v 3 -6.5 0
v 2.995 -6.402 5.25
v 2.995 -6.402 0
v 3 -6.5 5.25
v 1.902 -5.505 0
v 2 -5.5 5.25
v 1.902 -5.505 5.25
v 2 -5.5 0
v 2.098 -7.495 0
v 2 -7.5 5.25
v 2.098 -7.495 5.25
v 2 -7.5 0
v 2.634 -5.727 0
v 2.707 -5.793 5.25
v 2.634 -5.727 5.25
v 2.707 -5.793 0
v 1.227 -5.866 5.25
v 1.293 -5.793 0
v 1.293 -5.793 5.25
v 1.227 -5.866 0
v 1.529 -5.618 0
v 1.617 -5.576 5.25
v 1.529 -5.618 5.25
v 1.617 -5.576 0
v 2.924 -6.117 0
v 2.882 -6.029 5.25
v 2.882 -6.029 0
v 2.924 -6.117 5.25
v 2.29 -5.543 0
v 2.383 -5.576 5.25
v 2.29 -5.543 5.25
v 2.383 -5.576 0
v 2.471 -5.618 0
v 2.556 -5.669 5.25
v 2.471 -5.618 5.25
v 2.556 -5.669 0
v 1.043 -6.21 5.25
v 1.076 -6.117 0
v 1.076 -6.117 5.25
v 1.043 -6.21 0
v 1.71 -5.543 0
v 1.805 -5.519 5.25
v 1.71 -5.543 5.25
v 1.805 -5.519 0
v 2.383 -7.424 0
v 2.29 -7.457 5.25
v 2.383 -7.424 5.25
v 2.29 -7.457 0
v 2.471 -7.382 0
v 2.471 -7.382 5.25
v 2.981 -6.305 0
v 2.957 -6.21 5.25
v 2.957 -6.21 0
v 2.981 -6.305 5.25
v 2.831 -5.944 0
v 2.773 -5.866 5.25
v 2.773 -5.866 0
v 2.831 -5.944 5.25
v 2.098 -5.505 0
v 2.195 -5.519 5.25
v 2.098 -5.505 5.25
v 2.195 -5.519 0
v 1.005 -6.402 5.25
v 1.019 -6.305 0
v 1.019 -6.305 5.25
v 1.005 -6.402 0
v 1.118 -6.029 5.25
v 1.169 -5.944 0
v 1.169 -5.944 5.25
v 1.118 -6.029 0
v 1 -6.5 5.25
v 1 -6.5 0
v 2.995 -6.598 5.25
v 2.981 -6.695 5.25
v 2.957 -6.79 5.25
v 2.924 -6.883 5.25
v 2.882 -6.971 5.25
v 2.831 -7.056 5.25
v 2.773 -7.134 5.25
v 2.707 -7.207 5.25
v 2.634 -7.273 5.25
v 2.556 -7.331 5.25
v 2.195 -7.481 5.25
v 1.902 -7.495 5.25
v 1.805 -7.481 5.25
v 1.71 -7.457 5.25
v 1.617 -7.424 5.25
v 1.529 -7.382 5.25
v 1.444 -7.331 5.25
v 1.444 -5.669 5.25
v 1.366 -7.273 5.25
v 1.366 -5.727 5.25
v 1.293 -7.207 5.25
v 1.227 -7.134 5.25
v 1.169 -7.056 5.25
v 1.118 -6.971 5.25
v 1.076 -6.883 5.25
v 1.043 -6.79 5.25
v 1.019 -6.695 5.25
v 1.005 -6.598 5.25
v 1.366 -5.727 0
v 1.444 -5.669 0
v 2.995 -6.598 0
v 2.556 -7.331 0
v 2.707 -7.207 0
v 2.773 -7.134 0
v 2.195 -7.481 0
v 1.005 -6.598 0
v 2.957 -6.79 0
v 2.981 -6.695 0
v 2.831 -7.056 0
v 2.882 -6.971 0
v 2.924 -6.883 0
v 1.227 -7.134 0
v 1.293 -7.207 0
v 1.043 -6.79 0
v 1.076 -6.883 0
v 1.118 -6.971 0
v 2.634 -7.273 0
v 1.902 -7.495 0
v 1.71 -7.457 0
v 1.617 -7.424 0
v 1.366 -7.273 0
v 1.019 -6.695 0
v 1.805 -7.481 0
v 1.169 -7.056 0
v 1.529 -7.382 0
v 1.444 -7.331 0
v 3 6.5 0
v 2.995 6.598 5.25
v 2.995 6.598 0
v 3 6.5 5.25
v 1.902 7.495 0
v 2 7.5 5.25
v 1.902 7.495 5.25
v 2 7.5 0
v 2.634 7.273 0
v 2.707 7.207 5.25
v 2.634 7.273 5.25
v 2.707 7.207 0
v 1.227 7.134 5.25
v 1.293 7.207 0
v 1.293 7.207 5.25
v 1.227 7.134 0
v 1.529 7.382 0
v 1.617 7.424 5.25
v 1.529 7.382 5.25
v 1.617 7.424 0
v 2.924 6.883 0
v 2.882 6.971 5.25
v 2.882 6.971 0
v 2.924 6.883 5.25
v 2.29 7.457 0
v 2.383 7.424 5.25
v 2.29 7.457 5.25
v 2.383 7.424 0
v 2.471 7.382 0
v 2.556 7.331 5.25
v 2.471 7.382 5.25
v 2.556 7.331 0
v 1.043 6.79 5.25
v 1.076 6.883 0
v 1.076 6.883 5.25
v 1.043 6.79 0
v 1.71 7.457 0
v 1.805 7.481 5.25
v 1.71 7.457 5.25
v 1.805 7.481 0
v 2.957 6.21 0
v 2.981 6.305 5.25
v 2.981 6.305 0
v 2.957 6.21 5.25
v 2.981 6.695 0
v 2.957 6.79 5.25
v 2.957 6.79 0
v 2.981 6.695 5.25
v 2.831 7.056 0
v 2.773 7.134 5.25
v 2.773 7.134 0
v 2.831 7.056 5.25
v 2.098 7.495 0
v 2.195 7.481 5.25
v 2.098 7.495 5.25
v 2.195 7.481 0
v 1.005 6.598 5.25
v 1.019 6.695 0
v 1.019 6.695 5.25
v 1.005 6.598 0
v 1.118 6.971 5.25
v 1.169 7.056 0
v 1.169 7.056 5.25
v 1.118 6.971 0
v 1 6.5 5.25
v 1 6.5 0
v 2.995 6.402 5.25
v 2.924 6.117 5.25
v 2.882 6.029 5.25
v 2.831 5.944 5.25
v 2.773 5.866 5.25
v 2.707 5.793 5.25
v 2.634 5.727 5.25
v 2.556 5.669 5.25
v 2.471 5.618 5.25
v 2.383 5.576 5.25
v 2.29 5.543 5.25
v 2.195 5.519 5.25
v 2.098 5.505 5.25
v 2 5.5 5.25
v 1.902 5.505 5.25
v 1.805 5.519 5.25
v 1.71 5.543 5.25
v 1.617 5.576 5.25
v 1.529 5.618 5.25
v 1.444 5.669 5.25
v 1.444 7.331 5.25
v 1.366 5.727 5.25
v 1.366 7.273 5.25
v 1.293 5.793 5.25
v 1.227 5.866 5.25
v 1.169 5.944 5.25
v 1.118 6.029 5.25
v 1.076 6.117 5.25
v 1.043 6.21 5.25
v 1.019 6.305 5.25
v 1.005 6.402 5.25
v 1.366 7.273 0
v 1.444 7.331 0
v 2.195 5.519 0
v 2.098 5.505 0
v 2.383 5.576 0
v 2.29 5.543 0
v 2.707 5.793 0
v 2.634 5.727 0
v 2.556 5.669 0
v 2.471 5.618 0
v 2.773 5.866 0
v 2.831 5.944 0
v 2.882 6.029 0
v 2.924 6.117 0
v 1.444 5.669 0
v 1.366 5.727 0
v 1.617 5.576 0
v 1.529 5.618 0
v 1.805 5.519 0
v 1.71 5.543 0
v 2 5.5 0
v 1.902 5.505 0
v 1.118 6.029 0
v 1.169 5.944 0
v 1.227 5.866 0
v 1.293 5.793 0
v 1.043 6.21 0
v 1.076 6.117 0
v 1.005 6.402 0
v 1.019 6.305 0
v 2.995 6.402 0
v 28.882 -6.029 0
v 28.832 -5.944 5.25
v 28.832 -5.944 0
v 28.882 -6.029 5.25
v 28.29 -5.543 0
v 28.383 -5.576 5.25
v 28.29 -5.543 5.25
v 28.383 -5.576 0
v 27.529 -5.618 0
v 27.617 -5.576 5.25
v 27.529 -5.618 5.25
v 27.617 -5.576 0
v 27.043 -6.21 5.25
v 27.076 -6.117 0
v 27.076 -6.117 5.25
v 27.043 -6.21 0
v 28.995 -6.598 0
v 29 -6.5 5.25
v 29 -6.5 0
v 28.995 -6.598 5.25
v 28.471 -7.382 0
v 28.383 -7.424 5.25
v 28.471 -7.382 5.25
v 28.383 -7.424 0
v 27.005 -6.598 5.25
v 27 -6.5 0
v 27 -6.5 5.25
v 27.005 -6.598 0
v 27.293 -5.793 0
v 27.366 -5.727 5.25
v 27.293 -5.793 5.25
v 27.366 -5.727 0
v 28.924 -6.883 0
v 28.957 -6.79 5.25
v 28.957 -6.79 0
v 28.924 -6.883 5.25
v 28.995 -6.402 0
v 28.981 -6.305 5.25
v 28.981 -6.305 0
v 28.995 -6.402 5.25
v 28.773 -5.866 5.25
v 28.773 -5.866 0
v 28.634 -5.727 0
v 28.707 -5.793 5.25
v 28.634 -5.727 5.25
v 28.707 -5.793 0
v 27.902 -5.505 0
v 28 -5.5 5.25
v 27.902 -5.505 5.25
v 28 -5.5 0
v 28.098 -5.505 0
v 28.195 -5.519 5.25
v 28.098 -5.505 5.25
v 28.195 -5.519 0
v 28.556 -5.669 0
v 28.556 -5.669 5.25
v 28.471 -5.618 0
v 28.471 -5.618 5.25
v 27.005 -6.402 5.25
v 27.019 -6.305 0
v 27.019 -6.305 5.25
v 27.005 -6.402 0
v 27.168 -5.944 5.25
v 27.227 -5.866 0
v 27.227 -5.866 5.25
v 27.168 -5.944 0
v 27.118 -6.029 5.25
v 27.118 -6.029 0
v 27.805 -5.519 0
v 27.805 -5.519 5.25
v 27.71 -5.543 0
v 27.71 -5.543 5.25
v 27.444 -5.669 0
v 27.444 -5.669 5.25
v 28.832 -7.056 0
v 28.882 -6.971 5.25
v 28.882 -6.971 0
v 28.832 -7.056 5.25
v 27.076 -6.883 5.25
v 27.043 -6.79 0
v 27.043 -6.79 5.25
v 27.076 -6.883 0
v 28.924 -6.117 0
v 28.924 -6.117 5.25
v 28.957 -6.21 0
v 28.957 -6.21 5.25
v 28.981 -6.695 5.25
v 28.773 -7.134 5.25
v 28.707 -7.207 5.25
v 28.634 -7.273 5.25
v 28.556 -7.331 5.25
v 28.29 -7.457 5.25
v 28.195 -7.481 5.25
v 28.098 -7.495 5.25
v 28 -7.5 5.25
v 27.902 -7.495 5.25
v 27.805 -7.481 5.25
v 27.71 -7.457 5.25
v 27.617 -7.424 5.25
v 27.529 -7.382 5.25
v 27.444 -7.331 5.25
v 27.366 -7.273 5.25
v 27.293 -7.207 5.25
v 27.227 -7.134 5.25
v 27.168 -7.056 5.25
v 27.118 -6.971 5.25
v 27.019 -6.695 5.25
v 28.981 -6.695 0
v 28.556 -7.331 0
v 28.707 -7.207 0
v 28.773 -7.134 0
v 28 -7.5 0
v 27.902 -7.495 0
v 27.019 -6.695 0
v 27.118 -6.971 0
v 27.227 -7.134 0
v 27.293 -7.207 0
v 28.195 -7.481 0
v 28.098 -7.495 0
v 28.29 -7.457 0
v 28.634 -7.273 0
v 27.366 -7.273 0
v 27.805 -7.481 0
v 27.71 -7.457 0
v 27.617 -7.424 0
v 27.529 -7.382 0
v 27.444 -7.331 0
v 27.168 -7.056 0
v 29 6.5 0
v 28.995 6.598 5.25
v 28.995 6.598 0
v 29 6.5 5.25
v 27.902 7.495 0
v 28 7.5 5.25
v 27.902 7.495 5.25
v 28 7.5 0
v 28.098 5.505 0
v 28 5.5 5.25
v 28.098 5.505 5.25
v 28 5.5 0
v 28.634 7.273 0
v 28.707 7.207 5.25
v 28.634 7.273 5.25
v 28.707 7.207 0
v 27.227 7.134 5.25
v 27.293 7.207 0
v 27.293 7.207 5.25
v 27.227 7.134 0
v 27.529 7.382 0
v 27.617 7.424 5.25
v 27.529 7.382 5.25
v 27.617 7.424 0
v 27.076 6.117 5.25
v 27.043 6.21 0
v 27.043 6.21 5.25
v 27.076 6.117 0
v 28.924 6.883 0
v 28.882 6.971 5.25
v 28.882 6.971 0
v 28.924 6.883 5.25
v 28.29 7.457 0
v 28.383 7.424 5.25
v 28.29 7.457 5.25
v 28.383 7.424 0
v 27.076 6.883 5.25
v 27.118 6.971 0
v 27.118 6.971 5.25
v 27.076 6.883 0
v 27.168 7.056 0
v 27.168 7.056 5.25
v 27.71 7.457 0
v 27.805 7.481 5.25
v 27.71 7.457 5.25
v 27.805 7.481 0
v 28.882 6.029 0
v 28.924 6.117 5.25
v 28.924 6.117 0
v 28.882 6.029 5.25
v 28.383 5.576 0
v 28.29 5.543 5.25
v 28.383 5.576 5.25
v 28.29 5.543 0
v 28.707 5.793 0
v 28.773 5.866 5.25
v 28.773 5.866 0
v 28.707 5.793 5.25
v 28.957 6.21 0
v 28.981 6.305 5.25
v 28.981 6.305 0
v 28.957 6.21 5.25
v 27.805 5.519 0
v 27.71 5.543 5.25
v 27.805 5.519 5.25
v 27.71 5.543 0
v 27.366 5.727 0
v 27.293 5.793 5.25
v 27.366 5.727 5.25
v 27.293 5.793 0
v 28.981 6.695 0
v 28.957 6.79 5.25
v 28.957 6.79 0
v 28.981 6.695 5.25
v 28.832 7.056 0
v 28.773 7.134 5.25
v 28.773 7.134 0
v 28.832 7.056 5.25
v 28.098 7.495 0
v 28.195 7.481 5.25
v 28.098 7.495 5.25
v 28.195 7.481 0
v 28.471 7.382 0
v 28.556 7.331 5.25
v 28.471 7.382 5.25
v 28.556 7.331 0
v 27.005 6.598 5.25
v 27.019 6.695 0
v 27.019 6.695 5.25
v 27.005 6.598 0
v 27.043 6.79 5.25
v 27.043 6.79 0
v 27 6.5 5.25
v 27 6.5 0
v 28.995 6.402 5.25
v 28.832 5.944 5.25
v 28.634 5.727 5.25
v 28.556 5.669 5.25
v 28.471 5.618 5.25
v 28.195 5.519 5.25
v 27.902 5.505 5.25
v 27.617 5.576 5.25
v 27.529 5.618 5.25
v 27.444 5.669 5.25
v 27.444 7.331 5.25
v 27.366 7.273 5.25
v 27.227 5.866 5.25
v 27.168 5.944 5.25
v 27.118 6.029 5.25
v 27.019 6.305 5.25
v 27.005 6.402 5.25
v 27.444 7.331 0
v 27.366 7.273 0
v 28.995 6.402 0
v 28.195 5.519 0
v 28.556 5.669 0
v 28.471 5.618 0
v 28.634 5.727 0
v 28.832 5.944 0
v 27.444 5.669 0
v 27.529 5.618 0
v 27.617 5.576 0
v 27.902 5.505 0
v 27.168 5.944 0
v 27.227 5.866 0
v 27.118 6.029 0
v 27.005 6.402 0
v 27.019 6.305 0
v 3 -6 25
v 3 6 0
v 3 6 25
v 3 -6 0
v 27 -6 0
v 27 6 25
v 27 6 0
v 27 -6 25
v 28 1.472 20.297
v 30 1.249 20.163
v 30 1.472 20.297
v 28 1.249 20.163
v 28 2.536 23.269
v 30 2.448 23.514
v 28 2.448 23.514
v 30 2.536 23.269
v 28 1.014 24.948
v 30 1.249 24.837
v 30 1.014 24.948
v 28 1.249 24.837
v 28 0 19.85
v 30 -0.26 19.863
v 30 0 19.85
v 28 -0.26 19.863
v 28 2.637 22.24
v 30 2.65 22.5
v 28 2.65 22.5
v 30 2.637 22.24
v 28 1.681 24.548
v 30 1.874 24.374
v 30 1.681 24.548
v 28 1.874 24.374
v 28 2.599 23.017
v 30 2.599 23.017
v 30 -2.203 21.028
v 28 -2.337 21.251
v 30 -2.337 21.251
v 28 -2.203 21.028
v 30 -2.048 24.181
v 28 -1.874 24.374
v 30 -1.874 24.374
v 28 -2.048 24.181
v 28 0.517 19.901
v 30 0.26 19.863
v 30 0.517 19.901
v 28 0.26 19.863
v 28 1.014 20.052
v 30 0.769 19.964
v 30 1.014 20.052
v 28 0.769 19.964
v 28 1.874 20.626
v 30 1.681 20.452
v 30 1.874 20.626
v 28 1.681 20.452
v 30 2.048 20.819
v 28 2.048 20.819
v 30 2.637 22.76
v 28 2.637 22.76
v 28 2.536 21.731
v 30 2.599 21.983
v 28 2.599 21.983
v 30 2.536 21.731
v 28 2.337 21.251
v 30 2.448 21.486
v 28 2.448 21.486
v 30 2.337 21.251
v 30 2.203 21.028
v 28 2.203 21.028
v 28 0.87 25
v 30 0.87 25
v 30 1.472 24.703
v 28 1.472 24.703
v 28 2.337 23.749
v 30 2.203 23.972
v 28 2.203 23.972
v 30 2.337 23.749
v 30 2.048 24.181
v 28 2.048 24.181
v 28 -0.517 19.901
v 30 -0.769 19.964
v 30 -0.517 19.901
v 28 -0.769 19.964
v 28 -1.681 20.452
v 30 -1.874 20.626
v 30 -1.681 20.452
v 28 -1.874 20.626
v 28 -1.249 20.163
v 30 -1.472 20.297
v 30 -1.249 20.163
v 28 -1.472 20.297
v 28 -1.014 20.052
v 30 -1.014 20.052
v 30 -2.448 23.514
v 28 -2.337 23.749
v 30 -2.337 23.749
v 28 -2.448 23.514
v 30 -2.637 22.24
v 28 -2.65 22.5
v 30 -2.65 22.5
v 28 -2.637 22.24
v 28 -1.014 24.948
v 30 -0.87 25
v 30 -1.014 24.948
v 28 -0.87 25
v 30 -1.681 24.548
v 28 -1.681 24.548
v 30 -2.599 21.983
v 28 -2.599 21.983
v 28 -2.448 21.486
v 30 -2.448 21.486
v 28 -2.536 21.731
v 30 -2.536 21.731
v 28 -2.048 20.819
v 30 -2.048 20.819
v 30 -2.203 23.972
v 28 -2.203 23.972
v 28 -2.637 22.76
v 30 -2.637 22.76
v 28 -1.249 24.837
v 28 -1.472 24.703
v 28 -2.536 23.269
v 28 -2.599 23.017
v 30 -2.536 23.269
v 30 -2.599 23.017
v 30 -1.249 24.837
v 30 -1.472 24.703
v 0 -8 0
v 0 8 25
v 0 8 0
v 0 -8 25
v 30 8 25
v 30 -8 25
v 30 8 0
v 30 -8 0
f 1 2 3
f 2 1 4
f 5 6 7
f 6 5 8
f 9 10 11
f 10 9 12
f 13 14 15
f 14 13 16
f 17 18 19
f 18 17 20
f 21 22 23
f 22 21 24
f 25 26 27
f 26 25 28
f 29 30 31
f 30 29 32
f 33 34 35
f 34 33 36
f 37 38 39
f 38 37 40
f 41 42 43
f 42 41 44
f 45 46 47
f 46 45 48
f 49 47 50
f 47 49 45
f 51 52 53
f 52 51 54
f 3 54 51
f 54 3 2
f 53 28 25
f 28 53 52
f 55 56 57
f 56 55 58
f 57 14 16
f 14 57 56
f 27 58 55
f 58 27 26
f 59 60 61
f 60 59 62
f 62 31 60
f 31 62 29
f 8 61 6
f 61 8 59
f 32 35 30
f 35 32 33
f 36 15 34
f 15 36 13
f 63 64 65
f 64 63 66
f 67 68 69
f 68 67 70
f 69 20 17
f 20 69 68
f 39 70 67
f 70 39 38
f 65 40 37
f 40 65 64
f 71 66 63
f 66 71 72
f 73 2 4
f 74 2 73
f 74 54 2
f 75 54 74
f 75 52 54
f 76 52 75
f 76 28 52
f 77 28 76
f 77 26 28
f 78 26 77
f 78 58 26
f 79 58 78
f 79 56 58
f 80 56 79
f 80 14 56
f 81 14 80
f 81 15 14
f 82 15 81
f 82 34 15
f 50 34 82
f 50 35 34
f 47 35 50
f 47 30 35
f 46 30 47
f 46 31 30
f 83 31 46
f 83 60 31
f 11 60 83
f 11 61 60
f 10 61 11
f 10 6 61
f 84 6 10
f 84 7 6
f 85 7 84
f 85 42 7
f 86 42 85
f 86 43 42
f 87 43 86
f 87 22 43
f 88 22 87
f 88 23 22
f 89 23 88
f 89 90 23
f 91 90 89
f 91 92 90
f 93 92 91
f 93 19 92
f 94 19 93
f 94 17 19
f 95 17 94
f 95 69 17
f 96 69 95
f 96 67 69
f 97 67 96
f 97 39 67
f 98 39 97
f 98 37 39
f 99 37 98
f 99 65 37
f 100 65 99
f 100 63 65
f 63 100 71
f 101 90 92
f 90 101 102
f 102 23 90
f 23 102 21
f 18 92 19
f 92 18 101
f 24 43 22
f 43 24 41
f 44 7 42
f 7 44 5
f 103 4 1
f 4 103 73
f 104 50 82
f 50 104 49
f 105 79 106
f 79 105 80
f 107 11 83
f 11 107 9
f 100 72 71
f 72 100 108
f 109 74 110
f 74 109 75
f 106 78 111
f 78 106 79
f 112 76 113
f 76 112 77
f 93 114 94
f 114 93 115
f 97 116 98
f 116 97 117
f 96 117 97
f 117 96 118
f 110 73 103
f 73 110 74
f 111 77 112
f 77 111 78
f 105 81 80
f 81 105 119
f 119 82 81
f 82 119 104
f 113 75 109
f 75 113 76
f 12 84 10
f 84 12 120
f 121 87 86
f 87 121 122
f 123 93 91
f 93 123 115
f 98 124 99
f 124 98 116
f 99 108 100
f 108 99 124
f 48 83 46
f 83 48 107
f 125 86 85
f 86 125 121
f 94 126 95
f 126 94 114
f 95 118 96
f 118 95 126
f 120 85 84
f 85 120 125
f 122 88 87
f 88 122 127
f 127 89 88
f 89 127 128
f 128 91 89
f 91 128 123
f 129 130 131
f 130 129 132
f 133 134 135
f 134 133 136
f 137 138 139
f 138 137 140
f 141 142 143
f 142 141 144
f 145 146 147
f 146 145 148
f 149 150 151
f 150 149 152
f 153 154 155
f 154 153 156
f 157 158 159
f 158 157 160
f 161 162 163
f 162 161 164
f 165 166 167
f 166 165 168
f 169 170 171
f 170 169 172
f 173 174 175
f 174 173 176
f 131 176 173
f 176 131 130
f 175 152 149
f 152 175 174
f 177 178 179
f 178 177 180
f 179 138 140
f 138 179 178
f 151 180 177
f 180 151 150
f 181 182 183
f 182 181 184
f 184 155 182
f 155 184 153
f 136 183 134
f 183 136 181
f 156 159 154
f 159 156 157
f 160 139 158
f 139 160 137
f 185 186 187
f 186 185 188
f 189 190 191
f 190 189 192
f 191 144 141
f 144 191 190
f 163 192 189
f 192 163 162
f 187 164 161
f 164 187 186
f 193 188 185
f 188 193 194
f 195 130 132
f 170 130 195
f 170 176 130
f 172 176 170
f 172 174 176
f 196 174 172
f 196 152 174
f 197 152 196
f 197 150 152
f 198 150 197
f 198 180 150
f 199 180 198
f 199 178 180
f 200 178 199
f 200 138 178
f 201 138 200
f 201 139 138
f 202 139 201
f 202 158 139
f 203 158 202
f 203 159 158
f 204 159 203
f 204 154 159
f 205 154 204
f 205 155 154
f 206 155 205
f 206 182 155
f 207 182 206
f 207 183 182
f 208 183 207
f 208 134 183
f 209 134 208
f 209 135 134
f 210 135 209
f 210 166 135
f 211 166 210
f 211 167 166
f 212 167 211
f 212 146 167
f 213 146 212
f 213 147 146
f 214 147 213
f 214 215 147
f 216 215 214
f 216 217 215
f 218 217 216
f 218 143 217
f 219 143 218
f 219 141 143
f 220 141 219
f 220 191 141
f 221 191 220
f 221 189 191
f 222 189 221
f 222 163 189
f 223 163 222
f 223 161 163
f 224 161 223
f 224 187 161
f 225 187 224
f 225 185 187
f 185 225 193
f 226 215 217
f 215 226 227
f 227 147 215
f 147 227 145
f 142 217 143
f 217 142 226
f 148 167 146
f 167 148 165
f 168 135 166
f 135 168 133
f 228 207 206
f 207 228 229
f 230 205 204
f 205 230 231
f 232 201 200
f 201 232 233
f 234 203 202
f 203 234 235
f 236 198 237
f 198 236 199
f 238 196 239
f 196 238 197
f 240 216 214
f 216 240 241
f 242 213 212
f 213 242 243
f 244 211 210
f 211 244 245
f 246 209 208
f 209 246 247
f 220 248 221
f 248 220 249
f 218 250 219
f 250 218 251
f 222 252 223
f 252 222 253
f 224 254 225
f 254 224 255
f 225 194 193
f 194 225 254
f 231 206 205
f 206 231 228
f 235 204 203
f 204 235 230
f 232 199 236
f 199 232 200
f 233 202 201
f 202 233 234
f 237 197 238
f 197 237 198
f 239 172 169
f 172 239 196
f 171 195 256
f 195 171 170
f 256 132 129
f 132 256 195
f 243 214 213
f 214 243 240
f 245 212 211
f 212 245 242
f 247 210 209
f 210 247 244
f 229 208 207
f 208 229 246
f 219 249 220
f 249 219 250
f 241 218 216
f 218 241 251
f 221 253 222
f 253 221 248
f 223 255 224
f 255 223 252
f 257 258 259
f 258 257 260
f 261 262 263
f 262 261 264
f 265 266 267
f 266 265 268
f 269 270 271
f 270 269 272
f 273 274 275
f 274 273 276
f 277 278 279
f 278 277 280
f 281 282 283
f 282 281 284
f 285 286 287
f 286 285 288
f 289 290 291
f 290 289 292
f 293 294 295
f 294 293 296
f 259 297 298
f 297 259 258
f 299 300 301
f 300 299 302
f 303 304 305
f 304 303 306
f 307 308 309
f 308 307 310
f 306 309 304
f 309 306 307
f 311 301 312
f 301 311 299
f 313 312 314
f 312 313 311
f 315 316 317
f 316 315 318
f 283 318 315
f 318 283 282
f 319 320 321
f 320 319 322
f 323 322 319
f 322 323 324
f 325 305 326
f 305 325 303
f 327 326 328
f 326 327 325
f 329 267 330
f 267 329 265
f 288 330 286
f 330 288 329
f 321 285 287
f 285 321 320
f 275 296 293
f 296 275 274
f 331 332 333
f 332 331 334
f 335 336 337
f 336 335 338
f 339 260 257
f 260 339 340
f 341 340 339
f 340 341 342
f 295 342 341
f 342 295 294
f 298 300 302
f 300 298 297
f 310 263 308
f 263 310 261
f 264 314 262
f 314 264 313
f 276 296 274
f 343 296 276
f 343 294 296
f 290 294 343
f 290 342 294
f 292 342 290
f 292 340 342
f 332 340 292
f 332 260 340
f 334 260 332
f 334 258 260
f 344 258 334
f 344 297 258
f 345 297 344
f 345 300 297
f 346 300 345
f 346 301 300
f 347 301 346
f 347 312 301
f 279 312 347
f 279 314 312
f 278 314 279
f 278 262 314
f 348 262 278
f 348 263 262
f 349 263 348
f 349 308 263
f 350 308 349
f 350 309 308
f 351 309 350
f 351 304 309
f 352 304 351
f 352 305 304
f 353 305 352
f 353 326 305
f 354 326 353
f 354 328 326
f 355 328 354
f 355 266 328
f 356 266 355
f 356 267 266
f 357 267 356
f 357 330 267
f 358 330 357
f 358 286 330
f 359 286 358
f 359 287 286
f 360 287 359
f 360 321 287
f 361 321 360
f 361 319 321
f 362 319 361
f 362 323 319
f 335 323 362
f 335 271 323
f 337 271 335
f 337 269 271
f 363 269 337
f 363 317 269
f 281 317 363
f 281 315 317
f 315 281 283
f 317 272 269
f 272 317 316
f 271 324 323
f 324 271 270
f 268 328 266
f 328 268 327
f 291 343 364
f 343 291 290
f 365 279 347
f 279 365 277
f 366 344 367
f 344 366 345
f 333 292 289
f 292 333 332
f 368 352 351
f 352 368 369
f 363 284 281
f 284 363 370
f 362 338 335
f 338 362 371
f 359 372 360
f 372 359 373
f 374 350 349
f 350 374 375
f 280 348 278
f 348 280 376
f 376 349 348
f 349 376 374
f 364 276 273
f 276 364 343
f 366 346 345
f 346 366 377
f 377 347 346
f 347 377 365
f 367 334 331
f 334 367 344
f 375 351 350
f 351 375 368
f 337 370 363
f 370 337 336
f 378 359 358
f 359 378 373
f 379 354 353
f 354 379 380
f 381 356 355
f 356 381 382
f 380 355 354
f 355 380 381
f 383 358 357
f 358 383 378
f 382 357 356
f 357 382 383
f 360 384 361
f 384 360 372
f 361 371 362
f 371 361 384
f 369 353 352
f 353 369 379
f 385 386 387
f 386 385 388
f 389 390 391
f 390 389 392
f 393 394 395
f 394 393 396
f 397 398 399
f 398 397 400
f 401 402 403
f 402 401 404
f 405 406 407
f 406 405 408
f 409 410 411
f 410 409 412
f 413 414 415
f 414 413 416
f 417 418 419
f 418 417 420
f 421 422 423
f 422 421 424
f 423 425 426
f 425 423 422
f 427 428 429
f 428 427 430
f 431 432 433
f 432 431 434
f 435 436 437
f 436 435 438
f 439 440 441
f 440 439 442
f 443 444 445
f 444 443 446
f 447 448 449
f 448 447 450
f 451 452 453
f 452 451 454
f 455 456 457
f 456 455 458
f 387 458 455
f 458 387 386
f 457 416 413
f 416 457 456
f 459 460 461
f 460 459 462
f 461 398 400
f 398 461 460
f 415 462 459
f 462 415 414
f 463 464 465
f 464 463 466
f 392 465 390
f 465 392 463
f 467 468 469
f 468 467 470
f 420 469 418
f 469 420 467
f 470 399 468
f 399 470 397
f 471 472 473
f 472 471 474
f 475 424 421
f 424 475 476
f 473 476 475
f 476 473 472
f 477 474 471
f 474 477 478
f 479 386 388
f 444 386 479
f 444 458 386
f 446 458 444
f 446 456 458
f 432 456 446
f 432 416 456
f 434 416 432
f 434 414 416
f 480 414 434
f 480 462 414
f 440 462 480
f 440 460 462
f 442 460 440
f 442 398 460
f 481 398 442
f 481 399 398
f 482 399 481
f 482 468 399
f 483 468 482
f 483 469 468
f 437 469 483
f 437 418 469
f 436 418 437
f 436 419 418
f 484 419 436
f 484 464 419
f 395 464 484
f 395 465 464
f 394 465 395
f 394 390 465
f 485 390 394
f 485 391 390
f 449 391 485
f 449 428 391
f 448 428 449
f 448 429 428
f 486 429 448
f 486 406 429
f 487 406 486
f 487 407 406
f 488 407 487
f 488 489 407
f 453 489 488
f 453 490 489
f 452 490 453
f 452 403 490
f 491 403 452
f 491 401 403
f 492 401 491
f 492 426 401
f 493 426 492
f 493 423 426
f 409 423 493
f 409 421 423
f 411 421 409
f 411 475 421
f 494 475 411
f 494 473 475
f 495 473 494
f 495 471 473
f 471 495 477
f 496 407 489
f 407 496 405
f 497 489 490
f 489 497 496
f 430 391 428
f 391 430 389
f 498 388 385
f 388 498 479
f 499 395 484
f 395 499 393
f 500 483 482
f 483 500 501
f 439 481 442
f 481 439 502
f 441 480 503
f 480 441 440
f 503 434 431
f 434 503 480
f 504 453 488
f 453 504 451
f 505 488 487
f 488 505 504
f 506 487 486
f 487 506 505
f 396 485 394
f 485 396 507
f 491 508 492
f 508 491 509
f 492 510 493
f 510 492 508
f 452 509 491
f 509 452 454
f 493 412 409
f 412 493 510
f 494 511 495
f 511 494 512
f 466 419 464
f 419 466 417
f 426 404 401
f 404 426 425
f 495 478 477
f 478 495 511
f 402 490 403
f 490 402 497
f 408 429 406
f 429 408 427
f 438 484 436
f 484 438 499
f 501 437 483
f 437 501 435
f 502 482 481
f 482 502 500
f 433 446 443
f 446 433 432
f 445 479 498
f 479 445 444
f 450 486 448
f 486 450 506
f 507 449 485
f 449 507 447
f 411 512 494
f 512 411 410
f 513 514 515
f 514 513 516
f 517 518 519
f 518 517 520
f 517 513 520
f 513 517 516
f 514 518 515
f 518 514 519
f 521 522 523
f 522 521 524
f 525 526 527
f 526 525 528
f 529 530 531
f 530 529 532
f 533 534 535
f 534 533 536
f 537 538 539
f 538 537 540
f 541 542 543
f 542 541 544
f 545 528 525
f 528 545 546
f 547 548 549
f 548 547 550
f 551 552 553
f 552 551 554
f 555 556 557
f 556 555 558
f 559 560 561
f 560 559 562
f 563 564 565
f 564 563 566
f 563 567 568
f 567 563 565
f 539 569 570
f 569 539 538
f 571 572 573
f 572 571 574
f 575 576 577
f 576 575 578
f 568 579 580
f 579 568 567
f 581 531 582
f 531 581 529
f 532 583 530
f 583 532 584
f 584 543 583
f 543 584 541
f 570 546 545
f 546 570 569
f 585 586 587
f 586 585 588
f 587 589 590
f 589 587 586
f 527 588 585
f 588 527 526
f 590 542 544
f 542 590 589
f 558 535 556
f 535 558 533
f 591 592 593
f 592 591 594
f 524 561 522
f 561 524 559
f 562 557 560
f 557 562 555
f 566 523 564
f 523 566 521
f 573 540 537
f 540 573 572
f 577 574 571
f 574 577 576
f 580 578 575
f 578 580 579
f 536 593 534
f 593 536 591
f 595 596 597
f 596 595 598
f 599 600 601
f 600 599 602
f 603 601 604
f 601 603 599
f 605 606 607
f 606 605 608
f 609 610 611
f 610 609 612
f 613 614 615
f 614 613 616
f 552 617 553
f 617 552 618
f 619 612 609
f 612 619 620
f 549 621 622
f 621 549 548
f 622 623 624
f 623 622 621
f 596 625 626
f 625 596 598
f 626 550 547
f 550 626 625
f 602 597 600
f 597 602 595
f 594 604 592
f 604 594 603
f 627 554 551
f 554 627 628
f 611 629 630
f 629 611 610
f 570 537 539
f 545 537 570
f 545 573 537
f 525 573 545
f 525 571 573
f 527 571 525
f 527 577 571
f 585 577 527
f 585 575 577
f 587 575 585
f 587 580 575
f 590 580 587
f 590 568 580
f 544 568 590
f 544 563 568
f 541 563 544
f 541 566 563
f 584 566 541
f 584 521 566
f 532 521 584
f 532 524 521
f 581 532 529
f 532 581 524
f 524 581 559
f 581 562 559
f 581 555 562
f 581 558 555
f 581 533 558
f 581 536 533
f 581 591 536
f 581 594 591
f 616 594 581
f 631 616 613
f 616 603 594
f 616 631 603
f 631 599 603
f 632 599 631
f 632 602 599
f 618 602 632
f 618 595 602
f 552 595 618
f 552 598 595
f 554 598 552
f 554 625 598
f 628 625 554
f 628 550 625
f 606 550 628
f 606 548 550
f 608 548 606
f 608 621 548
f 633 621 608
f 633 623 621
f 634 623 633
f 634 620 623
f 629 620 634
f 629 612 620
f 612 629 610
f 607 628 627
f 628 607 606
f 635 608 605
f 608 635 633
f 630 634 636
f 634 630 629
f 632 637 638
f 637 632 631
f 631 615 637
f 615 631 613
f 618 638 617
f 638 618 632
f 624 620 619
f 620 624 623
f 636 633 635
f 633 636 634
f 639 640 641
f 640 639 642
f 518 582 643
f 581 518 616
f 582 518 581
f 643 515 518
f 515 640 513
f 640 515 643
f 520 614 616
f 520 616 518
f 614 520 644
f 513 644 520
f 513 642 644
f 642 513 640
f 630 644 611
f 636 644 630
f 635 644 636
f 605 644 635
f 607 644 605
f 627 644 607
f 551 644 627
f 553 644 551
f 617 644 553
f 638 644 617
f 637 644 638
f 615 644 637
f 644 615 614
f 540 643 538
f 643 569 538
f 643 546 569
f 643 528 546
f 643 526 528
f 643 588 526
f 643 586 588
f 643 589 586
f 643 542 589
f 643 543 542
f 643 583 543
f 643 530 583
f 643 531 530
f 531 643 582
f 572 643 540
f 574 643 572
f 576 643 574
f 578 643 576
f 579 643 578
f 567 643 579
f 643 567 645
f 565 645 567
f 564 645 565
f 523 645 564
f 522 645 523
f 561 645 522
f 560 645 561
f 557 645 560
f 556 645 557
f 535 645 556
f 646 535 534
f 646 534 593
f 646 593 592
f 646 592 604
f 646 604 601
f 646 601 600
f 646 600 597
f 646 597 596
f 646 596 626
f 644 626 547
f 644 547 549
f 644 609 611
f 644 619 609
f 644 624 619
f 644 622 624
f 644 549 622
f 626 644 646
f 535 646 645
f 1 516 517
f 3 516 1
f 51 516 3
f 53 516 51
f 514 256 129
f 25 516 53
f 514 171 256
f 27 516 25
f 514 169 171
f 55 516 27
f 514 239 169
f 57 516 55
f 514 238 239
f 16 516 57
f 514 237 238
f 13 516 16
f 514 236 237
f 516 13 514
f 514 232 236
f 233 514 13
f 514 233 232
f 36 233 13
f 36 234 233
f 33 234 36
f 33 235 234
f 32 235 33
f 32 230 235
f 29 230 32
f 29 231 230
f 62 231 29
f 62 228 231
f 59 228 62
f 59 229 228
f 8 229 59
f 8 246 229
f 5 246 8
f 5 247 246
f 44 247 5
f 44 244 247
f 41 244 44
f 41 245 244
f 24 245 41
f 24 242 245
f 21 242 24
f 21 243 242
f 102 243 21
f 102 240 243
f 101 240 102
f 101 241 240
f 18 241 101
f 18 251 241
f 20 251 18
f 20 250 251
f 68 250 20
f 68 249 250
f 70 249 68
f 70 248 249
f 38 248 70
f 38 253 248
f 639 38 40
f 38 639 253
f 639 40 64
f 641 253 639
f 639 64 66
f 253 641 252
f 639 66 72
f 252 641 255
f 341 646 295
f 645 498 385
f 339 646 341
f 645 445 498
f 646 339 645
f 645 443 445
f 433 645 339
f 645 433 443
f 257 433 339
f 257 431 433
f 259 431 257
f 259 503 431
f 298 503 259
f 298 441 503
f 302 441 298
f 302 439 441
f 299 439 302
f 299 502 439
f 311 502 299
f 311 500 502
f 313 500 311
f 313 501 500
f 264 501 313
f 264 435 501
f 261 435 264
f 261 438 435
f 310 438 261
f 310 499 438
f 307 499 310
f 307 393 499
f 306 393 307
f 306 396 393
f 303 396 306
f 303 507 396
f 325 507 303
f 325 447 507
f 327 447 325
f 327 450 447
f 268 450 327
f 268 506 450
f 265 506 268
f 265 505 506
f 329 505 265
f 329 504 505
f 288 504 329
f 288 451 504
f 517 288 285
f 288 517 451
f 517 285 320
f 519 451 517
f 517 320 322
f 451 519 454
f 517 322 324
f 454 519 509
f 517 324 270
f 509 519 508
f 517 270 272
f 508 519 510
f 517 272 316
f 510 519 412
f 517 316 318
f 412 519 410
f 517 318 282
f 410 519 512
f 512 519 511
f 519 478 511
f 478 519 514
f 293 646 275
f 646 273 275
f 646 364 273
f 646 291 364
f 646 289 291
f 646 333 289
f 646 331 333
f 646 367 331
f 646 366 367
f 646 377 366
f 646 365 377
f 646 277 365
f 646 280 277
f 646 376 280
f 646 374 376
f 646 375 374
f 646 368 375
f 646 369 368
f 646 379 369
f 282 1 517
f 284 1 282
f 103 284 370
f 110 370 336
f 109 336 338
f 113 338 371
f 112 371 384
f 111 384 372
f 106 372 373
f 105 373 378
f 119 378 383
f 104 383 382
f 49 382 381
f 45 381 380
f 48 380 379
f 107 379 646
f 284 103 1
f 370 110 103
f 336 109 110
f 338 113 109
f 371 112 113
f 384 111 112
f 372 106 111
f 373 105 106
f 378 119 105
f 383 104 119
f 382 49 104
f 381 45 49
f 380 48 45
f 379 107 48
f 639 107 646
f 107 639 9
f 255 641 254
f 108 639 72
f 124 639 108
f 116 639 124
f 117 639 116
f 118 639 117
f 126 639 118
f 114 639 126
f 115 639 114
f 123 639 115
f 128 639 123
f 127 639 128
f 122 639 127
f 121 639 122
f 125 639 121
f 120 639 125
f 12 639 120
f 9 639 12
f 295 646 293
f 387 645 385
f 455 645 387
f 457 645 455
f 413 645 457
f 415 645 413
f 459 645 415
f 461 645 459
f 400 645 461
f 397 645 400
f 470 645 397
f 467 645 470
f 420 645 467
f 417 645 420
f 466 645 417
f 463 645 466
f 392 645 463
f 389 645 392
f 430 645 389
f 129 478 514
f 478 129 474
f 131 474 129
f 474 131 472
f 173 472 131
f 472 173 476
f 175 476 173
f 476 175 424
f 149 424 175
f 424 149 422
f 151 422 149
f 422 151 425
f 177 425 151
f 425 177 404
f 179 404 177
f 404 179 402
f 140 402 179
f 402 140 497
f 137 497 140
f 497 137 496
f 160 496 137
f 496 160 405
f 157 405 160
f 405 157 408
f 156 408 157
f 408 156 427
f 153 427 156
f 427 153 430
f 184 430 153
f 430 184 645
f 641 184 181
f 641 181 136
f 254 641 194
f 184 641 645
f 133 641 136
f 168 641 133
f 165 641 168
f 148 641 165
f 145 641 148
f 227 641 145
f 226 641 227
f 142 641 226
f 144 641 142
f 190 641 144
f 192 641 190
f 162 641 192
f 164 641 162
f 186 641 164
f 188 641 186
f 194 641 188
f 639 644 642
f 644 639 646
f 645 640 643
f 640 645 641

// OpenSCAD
// ============================================================
// B1 - 近端指段 (Proximal Phalanx)
// 单位: 毫米 (mm)
//
// 坐标系 (与之前 Fusion 设计保持一致):
//   +X 朝向指尖方向 (长度方向)
//   Y  左右方向 (宽度)
//   Z  上下方向, Z=0 是底面 (手掌侧)
// ============================================================

/* === [全局渲染质量] === */
$fn = 64;

/* === [主壳尺寸] === */
len_x   = 30;     // 指段长度 (X)
wid_y   = 16;     // 指段宽度 (Y)
hgt_z   = 25;     // 指段高度 (Z)

/* === [内腔] === */
wall_x  = 3;      // X 方向壁厚 (前后壁)
wall_y  = 2;      // Y 方向壁厚 (左右壁) -- FDM用2mm
cavity_through = true;

/* === [输出关节孔] === */
joint_r  = 2.65;  // 关节孔半径 -- ⌀5.3 (⌀5金属销 + FDM公差)
joint_z  = 22.5;

/* === [手掌螺丝孔] === */
screw_r     = 1.0;    // 螺丝孔半径 -- ⌀2.0 (M2自攻螺丝)
screw_off_x = 13;
screw_off_y = 6.5;
screw_depth = 5;

// ============================================================
// 模块
// ============================================================

module main_shell() {
    translate([len_x/2, 0, hgt_z/2])
        cube([len_x, wid_y, hgt_z], center = true);
}

module inner_cavity() {
    cavity_h = cavity_through ? (hgt_z + 1) : (hgt_z - 6);
    translate([len_x/2, 0, hgt_z/2])
        cube([
            len_x - 2*wall_x,
            wid_y - 2*wall_y,
            cavity_h
        ], center = true);
}

module joint_hole() {
    translate([len_x, 0, joint_z])
        rotate([0, 90, 0])
        cylinder(h = wall_x + 1, r = joint_r, center = true);
}

module palm_screws() {
    for (sx = [-screw_off_x, screw_off_x],
         sy = [-screw_off_y, screw_off_y])
        translate([len_x/2 + sx, sy, -0.25])
            cylinder(h = screw_depth + 0.5, r = screw_r);
}

// ============================================================
// 组装
// ============================================================

difference() {
    main_shell();
    union() {
        inner_cavity();
        joint_hole();
        palm_screws();
    }
}

echo(str("B1 外形: ", len_x, " x ", wid_y, " x ", hgt_z, " mm"));
echo(str("B1 内腔: ", len_x - 2*wall_x, " x ", wid_y - 2*wall_y, " mm"));
echo(str("关节孔: ", "⌀", joint_r*2, " at Z=", joint_z, " mm"));
echo(str("螺丝孔: ", "⌀", screw_r*2, " x 4"));
